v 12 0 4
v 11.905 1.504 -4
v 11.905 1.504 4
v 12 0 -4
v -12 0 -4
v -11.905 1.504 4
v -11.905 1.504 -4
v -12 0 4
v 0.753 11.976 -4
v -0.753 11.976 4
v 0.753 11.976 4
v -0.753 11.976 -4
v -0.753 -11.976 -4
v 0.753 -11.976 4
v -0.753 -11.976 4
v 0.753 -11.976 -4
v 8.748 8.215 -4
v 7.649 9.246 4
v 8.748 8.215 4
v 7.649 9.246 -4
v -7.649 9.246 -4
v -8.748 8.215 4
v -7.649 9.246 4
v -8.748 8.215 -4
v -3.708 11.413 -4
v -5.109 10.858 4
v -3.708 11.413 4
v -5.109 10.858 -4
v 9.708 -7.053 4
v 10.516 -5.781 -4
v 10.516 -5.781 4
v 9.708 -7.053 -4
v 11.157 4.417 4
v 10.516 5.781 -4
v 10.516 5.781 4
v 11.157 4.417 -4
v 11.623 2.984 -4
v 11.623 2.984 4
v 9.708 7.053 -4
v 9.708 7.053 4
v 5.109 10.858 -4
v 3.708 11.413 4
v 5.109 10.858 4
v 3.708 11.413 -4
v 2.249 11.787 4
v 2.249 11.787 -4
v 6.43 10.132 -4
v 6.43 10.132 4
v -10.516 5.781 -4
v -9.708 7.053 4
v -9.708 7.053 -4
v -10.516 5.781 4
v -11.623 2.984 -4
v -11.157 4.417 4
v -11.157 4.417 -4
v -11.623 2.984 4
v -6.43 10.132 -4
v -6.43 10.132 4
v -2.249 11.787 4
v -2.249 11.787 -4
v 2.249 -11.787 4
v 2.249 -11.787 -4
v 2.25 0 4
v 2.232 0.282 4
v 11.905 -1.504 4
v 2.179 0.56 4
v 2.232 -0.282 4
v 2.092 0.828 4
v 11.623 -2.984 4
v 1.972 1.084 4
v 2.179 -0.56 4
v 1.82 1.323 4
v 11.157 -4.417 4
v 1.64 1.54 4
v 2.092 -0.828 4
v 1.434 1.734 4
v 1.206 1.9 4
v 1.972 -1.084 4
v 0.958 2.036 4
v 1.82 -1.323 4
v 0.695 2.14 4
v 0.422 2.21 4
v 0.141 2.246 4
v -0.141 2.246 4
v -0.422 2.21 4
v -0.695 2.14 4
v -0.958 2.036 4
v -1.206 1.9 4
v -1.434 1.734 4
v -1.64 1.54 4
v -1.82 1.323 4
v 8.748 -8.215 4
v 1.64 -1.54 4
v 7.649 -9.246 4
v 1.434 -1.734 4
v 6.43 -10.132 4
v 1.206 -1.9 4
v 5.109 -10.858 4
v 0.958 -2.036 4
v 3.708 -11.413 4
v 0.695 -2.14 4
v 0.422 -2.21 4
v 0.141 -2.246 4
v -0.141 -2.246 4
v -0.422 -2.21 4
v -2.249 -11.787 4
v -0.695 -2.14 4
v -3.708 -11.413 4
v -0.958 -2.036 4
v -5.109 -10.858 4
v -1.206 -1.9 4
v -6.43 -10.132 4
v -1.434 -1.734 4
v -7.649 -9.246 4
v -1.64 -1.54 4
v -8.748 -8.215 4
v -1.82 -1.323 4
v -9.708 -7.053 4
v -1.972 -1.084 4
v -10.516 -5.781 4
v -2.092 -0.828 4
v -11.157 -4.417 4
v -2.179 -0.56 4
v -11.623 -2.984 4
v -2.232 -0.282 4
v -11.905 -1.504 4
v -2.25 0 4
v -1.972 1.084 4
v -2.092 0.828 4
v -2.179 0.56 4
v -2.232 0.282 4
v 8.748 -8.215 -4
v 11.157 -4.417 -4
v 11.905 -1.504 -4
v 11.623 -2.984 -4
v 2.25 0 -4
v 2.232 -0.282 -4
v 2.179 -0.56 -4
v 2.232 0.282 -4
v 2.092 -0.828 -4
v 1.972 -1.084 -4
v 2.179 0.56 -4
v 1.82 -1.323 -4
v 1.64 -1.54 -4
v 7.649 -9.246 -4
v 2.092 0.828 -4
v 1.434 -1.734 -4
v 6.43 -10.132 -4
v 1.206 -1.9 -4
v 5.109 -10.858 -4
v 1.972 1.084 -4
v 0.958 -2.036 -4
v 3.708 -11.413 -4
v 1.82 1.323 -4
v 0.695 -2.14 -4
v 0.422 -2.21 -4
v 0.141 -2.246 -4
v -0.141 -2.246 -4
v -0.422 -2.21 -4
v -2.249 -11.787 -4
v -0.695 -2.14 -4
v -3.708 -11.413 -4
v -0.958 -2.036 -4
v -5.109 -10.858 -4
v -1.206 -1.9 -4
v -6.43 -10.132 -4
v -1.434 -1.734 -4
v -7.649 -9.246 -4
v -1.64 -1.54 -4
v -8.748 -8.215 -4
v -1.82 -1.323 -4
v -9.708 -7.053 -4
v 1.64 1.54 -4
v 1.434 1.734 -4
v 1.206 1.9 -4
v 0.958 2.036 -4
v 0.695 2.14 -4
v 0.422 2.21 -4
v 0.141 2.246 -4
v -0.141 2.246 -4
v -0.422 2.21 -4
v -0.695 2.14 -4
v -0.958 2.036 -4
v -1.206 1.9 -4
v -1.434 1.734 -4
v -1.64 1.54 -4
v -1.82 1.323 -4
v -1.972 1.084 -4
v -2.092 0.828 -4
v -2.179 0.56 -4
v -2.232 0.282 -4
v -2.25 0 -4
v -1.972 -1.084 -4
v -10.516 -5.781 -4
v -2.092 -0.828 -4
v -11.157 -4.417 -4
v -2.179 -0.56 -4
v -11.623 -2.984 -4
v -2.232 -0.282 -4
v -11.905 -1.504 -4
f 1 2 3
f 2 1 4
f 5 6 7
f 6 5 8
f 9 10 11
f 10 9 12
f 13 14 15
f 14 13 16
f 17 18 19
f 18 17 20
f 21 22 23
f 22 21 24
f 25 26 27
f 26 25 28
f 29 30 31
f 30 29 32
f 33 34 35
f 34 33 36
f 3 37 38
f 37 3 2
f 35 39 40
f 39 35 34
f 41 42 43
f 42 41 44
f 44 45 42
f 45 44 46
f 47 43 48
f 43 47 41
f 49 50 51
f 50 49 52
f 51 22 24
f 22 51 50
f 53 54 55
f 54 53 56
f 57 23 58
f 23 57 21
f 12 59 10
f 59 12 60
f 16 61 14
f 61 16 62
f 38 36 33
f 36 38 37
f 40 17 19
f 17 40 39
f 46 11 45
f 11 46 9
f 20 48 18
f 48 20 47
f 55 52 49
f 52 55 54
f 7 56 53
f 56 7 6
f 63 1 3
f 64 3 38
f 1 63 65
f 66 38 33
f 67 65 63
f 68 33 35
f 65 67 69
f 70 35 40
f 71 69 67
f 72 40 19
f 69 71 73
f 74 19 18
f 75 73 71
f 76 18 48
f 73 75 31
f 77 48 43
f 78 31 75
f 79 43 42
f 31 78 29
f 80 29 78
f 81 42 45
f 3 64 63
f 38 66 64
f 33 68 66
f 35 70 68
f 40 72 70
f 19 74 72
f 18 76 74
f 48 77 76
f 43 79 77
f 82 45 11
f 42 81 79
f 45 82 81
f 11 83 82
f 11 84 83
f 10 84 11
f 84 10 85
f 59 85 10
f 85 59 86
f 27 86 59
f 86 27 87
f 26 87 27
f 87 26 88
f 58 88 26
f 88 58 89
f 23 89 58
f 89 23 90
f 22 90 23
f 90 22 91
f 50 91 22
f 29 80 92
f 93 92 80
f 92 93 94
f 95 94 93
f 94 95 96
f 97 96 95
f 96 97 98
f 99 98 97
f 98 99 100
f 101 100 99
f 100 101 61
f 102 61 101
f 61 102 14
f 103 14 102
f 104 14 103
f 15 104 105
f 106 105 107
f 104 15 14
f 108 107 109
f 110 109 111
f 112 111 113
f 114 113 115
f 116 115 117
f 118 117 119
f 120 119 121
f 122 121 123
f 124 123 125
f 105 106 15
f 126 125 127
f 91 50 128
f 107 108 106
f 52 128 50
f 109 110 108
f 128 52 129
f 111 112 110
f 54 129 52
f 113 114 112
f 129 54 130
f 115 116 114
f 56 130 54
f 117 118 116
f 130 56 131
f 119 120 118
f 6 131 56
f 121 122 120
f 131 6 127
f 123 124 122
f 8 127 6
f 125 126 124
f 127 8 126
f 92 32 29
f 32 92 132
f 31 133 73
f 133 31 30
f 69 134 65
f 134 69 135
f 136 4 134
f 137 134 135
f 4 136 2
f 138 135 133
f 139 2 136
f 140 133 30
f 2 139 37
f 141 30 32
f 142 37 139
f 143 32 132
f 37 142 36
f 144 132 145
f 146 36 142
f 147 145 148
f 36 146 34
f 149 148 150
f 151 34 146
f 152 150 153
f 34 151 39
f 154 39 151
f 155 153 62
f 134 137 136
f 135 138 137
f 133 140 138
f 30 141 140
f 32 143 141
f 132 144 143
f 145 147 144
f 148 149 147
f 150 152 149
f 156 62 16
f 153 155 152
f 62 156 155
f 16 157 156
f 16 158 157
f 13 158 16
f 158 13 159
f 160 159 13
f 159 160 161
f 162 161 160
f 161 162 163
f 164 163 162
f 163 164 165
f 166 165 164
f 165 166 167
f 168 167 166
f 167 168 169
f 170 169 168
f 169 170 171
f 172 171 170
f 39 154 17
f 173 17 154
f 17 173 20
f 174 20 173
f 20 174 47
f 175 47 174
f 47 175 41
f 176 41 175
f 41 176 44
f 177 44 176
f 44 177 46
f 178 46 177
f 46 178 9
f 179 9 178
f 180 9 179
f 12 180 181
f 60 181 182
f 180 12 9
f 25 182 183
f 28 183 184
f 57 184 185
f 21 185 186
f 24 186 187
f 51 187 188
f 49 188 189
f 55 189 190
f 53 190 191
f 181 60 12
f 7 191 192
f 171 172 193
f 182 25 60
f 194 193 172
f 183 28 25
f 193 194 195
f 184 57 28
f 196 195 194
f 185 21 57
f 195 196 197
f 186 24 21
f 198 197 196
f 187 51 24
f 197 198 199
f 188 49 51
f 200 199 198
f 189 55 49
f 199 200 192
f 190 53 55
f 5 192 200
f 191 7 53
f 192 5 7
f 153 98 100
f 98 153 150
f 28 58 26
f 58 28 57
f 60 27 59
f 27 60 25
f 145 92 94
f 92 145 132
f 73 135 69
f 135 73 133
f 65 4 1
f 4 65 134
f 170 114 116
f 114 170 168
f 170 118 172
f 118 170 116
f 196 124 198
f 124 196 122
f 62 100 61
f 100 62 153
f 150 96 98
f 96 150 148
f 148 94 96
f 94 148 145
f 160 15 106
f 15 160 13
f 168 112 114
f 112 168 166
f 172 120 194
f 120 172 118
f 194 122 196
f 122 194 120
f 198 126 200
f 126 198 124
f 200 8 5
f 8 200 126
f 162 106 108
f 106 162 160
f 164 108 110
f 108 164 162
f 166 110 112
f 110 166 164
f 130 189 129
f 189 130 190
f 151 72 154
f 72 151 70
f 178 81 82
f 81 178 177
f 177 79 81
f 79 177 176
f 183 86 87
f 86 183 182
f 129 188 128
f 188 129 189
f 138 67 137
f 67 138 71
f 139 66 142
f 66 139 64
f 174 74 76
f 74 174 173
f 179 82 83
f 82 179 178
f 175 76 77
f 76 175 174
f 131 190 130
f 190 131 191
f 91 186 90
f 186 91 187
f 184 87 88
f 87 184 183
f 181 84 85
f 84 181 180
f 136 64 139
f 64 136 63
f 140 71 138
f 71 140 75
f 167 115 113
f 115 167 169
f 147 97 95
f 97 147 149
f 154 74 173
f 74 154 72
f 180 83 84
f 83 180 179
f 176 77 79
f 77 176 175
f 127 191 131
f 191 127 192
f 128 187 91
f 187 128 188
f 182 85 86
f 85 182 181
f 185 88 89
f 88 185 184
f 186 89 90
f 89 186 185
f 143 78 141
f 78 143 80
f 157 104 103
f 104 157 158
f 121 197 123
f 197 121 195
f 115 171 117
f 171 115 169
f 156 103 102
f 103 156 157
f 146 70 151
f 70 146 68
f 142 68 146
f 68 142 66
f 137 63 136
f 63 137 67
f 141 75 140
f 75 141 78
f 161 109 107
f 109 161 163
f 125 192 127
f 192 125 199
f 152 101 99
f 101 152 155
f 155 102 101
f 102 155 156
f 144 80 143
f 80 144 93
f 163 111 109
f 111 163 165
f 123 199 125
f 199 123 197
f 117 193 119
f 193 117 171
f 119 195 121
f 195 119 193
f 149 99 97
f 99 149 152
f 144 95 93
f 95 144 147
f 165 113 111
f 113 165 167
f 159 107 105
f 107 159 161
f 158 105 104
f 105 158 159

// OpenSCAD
$fn = 50;


difference() {
	union() {
		translate(v = [0, 0, -4.0000000000]) {
			cylinder(h = 8, r = 12.0000000000);
		}
	}
	union() {
		translate(v = [0, 0, -100.0000000000]) {
			cylinder(h = 200, r = 2.2500000000);
		}
	}
}
